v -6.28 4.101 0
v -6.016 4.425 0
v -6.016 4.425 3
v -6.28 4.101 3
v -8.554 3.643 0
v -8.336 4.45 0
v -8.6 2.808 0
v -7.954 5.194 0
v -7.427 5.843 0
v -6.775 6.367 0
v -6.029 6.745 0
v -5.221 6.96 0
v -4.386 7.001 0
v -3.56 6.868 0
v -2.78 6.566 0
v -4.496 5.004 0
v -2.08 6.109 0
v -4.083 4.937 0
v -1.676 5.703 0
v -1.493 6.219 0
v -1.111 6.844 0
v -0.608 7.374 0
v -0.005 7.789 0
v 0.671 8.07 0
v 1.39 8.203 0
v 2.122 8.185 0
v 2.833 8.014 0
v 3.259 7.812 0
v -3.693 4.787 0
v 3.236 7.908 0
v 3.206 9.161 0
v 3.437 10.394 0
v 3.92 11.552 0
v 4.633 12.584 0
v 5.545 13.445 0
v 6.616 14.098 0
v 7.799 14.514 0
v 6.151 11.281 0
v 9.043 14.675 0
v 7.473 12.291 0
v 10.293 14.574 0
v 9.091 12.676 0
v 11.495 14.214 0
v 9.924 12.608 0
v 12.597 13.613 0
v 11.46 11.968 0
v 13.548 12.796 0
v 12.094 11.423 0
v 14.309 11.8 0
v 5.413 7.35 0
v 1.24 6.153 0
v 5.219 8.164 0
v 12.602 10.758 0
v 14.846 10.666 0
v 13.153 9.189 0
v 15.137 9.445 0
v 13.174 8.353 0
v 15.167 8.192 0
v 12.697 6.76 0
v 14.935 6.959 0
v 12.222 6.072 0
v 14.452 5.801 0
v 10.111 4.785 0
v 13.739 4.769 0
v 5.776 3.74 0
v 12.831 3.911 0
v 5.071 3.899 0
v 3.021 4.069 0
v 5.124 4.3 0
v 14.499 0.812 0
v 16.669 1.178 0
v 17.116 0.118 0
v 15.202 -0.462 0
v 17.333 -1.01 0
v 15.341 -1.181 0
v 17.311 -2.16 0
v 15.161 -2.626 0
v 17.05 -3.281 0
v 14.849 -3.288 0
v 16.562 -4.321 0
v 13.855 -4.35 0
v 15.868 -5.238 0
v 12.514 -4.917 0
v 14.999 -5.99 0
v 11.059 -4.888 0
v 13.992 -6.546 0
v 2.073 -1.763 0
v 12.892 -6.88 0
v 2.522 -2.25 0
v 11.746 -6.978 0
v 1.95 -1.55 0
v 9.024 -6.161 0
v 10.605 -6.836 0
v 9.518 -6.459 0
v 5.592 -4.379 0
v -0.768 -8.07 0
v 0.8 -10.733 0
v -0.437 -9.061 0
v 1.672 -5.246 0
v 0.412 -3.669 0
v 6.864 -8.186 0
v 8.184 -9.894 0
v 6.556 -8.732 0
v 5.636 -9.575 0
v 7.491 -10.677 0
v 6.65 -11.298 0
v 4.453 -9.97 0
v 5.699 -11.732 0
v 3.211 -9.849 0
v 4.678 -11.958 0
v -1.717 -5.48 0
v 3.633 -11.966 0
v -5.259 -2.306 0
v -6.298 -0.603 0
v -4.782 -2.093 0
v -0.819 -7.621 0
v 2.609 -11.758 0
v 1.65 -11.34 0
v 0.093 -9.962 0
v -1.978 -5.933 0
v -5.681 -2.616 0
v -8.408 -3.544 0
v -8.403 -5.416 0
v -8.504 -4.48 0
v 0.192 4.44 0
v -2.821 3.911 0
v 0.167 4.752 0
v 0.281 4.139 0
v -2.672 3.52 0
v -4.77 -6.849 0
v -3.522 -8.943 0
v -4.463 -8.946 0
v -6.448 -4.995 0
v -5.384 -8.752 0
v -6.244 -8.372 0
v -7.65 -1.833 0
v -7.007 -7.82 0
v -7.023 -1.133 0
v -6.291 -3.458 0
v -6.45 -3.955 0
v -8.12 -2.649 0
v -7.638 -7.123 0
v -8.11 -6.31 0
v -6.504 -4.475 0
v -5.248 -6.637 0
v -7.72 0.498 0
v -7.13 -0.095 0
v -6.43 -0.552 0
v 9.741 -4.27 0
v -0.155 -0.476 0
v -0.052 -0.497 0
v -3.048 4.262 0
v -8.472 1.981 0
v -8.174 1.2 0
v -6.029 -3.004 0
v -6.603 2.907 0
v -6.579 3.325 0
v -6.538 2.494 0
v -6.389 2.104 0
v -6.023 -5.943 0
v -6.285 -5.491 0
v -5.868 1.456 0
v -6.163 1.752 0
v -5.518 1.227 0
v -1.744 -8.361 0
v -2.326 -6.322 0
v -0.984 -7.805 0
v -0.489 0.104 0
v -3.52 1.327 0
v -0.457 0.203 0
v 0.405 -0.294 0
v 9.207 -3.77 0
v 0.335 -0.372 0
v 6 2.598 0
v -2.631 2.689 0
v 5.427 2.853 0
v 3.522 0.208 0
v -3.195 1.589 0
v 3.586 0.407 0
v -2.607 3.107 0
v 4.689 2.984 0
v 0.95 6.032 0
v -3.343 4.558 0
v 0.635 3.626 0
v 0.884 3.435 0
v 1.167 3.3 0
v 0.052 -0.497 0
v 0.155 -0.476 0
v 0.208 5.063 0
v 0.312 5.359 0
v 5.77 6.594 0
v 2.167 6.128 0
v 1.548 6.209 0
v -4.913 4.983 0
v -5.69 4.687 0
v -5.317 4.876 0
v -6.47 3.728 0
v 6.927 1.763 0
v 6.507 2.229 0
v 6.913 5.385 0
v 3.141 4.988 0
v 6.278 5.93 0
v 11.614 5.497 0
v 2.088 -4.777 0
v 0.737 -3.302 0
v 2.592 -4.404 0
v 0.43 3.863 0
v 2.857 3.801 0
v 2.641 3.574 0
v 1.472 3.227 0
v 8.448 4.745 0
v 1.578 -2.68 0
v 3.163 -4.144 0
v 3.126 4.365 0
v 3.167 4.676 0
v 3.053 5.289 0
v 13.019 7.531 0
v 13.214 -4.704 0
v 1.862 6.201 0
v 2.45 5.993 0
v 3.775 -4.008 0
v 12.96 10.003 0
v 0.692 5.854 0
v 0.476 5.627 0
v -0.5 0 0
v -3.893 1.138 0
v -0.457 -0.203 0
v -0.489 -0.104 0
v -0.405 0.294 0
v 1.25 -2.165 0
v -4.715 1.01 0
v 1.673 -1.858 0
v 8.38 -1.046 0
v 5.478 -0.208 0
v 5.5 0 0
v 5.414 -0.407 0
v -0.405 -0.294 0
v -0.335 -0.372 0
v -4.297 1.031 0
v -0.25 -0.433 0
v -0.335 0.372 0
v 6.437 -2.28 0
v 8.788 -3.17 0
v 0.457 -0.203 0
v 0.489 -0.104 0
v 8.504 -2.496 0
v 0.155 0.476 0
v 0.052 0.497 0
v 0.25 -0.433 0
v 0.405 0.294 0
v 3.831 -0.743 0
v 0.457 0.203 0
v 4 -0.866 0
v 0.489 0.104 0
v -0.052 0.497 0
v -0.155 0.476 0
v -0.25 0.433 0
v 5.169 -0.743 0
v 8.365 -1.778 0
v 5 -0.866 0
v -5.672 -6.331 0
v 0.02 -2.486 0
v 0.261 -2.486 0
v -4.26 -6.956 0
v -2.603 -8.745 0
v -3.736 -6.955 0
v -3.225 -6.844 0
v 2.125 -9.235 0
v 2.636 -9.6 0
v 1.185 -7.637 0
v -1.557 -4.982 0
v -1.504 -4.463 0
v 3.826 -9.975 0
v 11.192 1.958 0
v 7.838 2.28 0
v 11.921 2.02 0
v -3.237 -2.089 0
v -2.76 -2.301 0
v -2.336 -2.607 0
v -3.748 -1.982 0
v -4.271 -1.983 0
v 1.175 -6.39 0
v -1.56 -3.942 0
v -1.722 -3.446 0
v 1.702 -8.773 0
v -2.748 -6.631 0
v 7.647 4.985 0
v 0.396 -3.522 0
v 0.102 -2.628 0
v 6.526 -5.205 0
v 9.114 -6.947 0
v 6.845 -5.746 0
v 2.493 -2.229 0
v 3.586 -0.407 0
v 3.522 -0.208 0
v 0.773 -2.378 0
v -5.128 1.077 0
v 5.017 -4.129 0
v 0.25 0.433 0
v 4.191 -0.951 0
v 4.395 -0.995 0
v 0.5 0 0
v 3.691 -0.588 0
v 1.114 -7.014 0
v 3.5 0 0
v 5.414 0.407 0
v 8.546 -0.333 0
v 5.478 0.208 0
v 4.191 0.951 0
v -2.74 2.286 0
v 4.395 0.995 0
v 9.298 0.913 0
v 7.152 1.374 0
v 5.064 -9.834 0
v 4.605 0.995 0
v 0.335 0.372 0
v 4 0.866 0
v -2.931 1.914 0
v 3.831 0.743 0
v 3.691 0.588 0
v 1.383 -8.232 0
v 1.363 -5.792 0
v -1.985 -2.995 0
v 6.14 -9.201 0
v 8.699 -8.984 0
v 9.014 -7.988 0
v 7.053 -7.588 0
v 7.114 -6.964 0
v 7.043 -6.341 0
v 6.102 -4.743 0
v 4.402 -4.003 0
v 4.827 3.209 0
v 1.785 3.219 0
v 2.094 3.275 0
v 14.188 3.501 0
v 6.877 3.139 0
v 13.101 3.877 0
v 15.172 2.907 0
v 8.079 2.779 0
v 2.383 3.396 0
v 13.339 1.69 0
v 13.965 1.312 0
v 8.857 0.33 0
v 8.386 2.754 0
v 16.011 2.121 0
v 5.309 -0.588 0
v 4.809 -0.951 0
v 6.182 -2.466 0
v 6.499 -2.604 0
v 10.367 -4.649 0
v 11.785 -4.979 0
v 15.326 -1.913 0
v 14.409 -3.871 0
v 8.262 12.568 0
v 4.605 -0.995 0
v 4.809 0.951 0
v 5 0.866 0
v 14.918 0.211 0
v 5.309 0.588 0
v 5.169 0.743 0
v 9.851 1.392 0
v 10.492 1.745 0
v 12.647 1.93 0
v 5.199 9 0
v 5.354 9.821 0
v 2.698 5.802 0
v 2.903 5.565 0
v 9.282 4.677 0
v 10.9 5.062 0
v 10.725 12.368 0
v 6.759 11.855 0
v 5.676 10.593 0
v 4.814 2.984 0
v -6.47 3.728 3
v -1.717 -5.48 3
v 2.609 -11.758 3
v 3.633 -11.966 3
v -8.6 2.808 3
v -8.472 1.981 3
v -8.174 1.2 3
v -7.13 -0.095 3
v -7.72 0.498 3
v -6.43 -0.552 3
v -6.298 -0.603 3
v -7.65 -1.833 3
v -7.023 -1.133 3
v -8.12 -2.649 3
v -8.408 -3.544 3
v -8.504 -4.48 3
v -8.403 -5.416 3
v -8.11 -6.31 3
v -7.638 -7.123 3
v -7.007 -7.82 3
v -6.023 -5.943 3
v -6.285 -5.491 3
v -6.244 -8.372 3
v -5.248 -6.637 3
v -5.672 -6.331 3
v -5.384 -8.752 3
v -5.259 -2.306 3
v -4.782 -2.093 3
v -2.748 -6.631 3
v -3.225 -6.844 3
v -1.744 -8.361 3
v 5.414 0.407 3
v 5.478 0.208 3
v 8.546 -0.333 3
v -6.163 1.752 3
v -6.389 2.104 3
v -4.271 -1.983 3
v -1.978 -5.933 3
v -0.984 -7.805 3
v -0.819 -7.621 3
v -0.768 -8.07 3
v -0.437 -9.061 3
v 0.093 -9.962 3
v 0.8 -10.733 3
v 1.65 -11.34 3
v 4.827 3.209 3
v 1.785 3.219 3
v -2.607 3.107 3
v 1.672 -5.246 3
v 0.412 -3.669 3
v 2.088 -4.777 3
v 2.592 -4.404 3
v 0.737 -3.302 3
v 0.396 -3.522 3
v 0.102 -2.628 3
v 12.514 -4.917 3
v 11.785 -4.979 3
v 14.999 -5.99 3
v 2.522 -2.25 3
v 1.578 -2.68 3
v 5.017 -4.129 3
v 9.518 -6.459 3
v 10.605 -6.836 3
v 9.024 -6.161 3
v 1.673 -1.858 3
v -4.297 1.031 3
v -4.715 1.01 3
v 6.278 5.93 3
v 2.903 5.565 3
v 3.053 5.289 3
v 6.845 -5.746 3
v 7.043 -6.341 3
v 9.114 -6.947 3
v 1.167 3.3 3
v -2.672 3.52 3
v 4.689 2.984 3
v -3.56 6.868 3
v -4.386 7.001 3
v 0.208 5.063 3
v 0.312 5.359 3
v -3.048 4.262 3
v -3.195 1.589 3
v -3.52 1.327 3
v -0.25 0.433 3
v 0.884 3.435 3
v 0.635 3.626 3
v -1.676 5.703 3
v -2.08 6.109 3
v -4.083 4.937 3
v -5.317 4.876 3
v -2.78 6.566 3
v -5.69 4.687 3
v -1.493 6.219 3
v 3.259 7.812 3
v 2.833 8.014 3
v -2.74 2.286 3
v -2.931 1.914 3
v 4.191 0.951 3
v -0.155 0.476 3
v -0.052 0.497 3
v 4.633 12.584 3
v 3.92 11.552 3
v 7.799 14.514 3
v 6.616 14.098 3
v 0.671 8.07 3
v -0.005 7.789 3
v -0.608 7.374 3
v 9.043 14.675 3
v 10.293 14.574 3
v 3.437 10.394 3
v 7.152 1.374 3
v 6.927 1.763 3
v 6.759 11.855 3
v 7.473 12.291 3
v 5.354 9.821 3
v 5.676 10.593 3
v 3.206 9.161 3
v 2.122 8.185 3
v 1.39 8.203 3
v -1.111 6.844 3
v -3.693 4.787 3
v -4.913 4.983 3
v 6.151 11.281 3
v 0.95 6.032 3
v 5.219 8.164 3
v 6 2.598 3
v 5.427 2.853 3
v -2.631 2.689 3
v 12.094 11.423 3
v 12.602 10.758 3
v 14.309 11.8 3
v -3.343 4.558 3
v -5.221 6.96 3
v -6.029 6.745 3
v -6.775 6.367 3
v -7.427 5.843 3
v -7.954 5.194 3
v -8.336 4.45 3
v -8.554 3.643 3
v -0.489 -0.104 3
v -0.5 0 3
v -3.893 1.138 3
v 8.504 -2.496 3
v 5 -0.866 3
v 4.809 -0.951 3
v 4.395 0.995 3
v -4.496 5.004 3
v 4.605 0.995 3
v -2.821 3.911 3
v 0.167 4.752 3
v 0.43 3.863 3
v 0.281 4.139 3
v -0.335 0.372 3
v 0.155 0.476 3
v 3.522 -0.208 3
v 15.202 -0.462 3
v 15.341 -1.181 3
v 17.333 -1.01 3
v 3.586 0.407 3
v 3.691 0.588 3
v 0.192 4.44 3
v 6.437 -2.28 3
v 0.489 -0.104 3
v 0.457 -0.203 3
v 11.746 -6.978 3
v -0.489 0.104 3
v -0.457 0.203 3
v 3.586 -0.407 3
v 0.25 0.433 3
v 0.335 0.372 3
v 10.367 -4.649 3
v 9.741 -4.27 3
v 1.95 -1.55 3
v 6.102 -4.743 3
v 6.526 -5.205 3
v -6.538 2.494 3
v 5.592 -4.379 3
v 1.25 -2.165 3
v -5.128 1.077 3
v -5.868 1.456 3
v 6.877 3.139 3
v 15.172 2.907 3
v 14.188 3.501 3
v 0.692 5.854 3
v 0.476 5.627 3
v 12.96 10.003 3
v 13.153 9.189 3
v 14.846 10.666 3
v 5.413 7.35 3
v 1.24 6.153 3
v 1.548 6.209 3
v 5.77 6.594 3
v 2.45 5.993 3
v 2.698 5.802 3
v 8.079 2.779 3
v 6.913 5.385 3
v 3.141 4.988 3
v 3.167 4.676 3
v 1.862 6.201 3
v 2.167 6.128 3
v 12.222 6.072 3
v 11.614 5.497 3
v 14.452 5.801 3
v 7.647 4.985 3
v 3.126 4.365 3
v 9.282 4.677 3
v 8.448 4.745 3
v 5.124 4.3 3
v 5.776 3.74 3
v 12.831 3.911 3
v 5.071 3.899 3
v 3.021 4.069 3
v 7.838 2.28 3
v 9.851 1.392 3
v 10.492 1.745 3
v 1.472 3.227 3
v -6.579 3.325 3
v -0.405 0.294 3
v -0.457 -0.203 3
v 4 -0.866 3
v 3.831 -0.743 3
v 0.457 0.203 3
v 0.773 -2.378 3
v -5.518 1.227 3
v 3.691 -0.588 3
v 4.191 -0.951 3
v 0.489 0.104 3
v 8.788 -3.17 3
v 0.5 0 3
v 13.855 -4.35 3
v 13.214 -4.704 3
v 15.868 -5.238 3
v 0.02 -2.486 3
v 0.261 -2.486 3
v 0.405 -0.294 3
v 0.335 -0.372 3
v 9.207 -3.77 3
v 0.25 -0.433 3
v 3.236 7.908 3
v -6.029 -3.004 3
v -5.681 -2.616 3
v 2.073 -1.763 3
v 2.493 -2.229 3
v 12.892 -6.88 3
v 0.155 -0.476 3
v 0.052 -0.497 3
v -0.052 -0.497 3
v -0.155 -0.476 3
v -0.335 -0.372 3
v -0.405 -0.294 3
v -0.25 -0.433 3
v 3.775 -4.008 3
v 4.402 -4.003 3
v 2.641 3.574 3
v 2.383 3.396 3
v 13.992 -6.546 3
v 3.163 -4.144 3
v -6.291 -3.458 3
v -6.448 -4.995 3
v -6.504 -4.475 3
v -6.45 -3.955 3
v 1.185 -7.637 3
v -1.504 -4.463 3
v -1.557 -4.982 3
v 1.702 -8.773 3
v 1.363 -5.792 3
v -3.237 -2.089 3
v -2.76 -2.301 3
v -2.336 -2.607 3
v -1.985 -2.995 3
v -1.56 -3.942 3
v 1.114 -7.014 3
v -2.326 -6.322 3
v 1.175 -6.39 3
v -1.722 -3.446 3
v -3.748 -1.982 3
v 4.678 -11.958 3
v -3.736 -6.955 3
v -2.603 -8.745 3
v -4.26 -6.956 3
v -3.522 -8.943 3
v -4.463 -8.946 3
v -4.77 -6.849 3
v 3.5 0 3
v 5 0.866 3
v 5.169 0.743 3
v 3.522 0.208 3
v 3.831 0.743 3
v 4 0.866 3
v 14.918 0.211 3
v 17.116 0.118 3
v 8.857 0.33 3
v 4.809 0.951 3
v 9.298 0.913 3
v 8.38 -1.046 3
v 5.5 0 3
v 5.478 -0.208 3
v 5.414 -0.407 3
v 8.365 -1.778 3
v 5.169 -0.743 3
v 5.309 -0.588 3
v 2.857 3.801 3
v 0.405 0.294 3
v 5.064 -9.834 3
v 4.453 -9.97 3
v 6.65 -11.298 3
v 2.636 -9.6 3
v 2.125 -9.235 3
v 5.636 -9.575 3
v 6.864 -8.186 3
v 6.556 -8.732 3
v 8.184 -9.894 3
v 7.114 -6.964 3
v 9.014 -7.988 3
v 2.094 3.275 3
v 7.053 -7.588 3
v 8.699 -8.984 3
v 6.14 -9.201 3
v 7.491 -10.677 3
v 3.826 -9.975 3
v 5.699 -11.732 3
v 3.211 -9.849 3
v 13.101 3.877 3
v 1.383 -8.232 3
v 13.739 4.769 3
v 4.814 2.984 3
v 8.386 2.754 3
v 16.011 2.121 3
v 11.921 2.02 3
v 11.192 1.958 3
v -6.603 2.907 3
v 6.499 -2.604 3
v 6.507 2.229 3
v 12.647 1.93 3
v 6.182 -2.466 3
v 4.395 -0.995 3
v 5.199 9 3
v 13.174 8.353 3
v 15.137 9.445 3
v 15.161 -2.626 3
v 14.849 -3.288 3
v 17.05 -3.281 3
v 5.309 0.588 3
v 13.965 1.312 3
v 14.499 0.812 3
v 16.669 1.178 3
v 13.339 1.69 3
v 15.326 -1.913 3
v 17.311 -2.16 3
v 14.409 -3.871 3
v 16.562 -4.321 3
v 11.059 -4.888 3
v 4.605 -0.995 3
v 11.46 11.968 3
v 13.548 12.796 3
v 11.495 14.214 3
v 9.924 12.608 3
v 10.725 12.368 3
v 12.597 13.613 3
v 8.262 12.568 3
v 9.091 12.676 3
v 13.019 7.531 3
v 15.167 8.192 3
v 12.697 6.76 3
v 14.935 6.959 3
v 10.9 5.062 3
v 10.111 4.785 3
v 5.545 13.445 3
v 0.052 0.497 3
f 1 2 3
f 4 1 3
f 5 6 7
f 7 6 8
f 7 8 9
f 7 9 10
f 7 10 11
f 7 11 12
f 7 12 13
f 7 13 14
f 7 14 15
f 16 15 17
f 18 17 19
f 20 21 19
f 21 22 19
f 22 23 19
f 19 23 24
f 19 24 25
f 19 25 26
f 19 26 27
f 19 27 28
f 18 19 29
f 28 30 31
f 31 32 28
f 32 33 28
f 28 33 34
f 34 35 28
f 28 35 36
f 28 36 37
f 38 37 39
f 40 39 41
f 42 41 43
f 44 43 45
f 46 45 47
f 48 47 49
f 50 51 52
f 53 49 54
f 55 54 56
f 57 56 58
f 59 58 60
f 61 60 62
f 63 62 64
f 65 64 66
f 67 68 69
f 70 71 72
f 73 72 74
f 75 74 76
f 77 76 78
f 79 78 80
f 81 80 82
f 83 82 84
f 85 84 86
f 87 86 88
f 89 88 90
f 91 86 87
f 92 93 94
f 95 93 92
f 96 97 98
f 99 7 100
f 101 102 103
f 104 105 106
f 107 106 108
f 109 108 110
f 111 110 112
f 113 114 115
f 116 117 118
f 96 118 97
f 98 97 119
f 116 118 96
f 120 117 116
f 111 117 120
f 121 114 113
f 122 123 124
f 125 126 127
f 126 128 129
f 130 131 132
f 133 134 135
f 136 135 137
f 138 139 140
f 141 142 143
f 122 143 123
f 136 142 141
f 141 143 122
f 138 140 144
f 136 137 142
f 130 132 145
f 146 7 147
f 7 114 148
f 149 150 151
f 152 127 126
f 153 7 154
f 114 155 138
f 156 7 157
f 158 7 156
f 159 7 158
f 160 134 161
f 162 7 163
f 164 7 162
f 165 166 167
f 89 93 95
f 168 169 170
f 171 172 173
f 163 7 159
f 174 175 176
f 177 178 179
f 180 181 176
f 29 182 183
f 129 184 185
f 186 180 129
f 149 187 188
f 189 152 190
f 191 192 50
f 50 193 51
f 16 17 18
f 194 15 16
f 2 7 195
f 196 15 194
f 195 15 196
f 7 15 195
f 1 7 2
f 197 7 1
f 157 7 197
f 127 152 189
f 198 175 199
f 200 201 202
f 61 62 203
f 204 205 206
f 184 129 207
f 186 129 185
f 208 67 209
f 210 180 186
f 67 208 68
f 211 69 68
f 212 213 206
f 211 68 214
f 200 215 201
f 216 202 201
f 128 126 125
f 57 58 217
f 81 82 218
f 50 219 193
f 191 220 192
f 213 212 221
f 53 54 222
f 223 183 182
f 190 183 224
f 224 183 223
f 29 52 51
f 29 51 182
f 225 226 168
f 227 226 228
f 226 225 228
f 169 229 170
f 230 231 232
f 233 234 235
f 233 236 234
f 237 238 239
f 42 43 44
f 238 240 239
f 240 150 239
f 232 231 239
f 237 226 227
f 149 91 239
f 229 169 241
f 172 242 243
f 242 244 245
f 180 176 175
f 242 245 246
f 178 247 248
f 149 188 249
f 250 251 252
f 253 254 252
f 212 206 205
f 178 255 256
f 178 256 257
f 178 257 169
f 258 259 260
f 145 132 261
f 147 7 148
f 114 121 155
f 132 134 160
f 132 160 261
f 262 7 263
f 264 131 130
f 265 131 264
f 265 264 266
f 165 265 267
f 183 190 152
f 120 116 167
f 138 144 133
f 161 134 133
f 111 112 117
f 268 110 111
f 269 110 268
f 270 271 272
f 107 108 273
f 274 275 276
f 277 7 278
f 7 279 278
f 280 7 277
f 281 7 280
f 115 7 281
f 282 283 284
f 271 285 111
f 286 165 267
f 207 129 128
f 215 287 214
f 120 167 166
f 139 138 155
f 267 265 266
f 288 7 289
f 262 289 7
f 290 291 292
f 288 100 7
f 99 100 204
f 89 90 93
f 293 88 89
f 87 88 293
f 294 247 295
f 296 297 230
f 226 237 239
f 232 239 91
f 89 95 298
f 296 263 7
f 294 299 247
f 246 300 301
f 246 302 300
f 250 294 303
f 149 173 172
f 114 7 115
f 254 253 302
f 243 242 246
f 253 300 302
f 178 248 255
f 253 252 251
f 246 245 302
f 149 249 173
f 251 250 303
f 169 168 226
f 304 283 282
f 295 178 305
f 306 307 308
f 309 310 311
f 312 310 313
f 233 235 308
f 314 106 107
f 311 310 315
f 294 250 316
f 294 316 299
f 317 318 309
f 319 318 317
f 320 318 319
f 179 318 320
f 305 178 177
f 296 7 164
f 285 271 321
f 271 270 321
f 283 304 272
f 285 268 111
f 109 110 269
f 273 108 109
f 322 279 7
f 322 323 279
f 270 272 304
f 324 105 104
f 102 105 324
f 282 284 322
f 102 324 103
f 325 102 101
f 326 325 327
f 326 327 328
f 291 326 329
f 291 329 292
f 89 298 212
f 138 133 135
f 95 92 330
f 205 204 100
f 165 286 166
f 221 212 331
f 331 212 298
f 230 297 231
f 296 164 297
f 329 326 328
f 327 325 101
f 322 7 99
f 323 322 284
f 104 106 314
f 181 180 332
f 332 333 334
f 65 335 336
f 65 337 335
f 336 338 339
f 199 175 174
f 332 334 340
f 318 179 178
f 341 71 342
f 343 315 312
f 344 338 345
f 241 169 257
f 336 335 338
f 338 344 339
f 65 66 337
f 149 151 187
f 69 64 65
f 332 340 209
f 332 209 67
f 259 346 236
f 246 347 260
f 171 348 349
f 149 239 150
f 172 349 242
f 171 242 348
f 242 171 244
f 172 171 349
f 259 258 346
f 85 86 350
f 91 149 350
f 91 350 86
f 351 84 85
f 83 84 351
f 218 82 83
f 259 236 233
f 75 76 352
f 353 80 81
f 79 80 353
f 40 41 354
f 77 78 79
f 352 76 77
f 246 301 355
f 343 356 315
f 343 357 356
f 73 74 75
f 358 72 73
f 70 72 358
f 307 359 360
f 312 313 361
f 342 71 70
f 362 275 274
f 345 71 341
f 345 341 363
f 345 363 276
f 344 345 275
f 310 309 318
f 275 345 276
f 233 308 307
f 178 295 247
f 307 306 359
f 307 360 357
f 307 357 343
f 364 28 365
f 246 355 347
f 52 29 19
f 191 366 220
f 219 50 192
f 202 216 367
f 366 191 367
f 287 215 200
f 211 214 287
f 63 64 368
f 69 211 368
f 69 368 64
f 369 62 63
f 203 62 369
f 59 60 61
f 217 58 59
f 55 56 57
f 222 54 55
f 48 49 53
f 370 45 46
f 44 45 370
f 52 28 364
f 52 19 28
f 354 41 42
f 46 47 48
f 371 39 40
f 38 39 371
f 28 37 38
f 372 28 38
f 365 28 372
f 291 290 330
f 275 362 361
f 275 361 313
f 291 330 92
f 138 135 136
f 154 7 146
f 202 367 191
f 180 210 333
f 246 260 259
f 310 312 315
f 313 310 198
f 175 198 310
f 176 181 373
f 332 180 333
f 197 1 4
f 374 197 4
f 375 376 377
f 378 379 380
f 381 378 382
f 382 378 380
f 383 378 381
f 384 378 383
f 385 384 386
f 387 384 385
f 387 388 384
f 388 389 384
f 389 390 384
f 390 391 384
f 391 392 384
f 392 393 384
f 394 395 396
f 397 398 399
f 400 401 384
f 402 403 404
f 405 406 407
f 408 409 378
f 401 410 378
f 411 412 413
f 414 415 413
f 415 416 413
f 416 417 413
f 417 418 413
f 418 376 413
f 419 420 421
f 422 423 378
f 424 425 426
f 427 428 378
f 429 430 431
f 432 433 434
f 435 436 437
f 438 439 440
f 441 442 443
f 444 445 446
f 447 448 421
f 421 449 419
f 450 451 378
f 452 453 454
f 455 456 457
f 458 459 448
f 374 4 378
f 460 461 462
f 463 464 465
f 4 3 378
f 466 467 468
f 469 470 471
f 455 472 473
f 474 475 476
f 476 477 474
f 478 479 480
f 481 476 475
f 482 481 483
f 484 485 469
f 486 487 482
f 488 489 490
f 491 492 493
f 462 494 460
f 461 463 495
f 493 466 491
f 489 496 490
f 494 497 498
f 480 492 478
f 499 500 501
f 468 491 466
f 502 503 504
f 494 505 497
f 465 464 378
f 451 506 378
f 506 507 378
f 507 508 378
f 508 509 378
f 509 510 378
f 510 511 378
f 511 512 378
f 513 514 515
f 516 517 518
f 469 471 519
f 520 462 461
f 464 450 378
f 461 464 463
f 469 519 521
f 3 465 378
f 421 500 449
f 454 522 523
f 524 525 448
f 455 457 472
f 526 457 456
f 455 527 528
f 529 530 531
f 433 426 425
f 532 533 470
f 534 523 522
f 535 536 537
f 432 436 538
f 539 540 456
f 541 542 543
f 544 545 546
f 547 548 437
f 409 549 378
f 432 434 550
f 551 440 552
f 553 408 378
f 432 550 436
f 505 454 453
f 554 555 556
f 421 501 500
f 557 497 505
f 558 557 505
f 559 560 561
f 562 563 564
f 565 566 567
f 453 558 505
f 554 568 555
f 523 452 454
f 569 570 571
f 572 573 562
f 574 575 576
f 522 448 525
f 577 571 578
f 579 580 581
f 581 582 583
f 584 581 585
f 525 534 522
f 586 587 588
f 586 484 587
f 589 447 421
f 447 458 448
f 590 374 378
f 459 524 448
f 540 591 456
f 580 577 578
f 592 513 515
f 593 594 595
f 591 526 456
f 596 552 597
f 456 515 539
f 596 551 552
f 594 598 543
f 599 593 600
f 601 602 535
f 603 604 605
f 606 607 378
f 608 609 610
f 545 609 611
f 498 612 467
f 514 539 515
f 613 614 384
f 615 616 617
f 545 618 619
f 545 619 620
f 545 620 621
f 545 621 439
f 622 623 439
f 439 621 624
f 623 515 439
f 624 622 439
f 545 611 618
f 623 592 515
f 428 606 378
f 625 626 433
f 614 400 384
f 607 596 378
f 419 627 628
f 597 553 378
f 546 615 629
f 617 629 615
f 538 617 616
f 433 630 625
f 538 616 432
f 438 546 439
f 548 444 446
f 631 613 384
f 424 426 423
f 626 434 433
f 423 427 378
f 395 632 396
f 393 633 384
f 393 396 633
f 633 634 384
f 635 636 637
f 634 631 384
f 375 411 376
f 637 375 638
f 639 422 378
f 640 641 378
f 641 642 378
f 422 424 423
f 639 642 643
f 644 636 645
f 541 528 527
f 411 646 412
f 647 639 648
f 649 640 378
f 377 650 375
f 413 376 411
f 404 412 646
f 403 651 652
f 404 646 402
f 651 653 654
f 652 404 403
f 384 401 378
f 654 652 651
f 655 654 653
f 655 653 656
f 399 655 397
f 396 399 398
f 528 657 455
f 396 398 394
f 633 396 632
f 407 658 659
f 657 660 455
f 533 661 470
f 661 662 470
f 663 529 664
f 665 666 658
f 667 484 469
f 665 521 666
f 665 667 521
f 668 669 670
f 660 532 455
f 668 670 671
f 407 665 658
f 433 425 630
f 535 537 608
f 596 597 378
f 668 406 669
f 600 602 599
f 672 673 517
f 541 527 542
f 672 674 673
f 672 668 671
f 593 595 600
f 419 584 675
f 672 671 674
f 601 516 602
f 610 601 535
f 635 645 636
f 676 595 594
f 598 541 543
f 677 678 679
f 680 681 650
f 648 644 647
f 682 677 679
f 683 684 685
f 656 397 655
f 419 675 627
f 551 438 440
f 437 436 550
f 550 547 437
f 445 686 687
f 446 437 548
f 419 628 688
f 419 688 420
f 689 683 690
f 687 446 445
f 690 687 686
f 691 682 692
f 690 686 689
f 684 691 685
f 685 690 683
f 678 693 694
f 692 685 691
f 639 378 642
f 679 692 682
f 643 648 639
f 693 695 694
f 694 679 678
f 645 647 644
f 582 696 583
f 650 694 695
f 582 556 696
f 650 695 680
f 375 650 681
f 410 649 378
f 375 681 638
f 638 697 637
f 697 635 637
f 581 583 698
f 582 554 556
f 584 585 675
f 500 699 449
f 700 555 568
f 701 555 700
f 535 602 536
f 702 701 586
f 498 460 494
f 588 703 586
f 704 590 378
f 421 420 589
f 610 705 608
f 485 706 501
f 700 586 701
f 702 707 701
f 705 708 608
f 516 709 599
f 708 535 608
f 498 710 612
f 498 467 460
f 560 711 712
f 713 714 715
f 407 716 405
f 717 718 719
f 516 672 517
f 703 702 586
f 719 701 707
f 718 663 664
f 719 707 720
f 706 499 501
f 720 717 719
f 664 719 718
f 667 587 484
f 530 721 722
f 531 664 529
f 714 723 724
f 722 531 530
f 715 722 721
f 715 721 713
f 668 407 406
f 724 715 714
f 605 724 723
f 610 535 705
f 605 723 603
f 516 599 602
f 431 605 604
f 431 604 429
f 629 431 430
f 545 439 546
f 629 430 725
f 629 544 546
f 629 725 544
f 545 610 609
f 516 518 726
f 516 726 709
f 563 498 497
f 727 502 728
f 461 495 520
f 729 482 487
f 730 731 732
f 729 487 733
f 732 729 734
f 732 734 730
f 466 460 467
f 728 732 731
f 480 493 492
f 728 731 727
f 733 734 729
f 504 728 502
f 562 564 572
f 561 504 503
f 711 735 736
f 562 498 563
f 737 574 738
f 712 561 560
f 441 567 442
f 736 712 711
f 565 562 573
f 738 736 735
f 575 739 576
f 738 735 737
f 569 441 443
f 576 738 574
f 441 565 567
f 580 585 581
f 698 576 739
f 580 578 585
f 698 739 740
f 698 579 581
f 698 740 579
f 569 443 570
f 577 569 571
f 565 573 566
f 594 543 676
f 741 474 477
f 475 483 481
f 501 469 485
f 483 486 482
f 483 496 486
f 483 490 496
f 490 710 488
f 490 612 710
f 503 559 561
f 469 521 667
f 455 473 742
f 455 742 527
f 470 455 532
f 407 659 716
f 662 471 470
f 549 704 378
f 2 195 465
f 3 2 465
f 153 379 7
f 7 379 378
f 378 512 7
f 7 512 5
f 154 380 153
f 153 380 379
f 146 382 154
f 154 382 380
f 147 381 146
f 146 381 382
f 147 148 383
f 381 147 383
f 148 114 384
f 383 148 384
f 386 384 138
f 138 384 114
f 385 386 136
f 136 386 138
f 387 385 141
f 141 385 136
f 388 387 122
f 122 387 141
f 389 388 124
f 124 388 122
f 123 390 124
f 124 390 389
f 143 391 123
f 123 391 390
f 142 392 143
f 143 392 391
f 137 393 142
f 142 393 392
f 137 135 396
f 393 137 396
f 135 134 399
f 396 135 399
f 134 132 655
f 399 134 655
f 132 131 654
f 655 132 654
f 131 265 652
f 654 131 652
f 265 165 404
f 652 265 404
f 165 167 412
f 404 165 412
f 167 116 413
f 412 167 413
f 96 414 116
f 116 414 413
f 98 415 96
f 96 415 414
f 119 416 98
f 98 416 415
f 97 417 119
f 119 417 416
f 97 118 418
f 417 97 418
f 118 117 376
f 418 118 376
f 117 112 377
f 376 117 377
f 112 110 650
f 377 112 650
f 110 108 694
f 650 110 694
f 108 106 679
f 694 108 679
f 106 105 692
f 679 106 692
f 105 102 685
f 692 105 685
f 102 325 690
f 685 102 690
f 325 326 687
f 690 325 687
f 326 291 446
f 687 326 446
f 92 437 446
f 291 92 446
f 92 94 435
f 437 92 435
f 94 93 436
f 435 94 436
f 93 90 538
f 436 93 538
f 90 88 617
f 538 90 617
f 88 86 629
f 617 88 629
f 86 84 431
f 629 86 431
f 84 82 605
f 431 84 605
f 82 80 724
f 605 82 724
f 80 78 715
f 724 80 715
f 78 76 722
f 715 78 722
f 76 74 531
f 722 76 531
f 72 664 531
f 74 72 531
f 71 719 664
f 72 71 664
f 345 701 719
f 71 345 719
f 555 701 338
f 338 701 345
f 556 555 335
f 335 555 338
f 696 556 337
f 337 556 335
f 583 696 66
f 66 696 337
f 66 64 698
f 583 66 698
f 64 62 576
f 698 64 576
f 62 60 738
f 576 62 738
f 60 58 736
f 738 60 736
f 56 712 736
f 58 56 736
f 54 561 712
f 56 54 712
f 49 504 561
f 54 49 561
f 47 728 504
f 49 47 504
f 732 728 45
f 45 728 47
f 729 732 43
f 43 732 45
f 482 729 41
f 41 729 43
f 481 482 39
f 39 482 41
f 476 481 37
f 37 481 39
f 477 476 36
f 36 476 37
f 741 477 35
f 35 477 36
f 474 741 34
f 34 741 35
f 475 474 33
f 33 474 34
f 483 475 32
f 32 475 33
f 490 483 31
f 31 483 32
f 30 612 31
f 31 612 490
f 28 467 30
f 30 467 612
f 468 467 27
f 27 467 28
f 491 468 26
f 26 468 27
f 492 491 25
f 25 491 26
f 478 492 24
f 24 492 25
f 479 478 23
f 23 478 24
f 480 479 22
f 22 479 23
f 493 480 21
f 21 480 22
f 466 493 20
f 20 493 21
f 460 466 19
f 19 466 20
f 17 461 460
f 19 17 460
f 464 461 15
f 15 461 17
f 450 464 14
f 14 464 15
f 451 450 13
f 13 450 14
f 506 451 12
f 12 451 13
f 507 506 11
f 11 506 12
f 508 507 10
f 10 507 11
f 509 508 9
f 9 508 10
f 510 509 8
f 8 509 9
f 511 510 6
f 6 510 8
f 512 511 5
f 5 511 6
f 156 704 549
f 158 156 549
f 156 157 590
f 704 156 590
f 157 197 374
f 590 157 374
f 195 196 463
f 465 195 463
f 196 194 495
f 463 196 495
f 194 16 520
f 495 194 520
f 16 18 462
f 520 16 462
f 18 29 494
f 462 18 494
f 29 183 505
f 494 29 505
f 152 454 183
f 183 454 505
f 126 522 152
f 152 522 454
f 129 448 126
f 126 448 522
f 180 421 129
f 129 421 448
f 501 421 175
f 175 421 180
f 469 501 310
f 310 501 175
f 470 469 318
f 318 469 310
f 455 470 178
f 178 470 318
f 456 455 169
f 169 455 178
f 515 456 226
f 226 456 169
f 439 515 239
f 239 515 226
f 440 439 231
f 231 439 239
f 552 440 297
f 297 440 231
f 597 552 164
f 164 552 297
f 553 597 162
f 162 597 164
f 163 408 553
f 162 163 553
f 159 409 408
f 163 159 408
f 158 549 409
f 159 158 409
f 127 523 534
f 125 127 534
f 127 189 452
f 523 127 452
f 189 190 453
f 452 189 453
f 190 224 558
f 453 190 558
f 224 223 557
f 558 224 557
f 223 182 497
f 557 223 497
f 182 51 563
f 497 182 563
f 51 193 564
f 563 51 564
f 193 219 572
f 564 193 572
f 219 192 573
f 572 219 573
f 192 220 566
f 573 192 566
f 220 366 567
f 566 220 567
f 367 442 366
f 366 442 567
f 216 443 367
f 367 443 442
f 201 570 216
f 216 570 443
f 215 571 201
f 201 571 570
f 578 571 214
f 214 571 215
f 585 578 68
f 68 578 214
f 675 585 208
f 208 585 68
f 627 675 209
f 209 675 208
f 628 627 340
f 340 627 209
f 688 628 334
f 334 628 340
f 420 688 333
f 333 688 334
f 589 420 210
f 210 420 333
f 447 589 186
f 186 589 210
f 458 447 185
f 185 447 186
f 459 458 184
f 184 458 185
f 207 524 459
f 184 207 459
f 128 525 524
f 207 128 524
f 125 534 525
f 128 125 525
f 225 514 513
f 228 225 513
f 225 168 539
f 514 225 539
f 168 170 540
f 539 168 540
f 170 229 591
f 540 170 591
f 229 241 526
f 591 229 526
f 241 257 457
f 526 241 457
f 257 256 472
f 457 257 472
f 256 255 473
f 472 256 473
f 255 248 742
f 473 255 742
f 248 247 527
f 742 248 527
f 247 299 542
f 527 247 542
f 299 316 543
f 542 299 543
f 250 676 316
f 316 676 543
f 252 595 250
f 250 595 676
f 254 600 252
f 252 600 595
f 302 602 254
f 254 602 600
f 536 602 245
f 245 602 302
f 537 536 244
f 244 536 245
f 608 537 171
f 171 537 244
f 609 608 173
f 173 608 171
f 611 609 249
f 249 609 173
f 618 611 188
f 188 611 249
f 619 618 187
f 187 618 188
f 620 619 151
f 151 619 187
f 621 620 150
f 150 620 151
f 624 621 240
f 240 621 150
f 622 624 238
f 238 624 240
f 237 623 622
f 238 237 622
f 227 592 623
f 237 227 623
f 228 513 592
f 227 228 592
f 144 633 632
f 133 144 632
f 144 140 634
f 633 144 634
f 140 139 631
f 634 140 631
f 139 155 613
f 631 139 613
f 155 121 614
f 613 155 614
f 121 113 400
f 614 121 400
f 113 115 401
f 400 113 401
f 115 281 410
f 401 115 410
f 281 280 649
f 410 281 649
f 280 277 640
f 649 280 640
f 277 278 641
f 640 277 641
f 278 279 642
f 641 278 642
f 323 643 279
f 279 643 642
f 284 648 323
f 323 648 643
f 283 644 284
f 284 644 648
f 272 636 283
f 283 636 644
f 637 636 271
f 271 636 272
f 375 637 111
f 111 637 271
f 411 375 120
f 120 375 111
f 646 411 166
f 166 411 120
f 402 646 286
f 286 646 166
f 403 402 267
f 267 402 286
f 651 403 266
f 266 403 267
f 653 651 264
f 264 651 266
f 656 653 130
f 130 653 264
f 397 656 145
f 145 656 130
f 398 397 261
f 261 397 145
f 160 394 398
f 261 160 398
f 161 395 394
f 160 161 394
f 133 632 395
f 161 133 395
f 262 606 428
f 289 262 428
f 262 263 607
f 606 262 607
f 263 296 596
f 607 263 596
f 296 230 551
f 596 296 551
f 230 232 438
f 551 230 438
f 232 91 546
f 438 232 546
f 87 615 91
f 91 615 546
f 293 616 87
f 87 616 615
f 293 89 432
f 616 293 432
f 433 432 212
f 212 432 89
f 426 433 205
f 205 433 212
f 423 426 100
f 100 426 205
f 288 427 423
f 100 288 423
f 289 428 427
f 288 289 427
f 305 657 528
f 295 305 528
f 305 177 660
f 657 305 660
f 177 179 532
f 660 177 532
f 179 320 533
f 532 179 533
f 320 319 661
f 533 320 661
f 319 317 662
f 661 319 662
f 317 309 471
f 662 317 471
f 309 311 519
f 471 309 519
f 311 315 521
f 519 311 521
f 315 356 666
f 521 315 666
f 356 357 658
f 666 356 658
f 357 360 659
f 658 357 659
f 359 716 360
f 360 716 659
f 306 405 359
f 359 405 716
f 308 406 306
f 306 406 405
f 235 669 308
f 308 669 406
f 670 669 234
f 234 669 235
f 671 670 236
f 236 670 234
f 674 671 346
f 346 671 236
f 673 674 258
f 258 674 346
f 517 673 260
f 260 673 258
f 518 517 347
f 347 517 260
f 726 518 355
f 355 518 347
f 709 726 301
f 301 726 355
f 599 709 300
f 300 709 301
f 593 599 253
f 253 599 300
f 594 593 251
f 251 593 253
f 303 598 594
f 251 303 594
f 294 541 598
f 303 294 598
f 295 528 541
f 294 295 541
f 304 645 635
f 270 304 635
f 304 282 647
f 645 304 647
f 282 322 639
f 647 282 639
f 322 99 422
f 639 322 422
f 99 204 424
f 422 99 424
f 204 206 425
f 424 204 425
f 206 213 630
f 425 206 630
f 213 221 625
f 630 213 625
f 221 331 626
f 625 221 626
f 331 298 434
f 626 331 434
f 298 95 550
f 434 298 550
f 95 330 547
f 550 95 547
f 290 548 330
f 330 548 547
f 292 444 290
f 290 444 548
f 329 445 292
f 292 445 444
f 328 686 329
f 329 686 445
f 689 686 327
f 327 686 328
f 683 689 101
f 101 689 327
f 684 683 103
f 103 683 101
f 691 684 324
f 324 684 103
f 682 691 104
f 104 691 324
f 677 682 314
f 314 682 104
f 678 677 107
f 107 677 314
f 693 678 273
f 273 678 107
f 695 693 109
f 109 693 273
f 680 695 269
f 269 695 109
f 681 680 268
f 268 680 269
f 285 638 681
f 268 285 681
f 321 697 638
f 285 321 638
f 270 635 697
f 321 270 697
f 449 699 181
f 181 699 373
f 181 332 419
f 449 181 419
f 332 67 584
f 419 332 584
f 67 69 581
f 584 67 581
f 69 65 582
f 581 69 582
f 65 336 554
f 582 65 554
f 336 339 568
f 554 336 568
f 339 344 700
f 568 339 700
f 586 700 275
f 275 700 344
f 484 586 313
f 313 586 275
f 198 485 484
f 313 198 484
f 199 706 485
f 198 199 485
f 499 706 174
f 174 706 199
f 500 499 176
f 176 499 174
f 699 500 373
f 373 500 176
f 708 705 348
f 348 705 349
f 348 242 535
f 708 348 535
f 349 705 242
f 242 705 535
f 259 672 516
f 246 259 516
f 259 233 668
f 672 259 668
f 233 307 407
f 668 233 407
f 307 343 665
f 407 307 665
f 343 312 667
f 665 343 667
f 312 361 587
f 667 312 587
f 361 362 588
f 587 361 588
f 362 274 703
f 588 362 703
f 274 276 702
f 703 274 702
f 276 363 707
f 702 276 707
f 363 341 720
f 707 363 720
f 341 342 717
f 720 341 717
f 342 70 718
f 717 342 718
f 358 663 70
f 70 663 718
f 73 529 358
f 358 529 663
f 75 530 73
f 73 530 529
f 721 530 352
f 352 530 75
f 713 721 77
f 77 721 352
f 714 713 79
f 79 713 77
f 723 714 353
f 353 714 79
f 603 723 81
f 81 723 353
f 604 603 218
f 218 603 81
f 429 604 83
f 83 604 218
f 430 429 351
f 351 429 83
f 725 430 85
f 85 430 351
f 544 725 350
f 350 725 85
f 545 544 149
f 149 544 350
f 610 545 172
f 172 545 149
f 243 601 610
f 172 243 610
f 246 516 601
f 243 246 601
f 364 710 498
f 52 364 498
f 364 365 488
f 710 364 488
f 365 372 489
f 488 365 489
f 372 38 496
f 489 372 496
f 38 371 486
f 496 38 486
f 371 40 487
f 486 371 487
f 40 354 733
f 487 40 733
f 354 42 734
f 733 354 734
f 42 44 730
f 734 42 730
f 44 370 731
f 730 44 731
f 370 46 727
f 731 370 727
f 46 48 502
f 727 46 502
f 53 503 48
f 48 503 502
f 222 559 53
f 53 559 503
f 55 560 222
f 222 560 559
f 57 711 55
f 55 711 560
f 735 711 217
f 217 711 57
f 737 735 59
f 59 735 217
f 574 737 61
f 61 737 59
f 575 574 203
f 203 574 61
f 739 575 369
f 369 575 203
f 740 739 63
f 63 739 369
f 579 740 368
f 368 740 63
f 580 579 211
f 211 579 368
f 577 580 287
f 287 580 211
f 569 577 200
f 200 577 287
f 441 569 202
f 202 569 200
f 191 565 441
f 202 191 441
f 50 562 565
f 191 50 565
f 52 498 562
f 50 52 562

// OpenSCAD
linear_extrude(height=3)
{
	translate([0,0])
		difference()
		{
			circle(r=2.5,$fn=30);
			circle(r=0.5,$fn=30);
		};
	translate([4.5,0])
		difference()
		{
			circle(r=3,$fn=30);
			circle(r=1,$fn=30);
		};
	rotate(70.528779)
		translate([5,0])
			difference()
			{
				circle(r=3.5,$fn=30);
				circle(r=1.5,$fn=30);
			};
	rotate(146.856761)
		translate([5.5,0])
			difference()
			{
				circle(r=4,$fn=30);
				circle(r=2,$fn=30);
			};
	rotate(228.142019)
		translate([6,0])
			difference()
			{
				circle(r=4.5,$fn=30);
				circle(r=2.5,$fn=30);
			};
	rotate(300.481309)
		translate([8.110224,0])
			difference()
			{
				circle(r=5,$fn=30);
				circle(r=3,$fn=30);
			};
	rotate(352.886535)
		translate([11.944632,0])
			difference()
			{
				circle(r=5.5,$fn=30);
				circle(r=3.5,$fn=30);
			};
	rotate(43.365327)
		translate([12.636304,0])
			difference()
			{
				circle(r=6,$fn=30);
				circle(r=4,$fn=30);
			};
};

/*
linear_extrude(height=3) difference()
{
translate([4,2]) circle(r=16,$fn=30);
translate([0,0]) circle(r=0.5,$fn=30);
translate([4.5,0]) circle(r=1,$fn=30);
rotate(70.528779) translate([5,0]) circle(r=1.5,$fn=30);
rotate(146.856761) translate([5.5,0]) circle(r=2,$fn=30);
rotate(228.142019) translate([6,0]) circle(r=2.5,$fn=30);
rotate(300.481309) translate([8.110224,0]) circle(r=3,$fn=30);
rotate(352.886535) translate([11.944632,0]) circle(r=3.5,$fn=30);
rotate(43.365327) translate([12.636304,0]) circle(r=4,$fn=30);
}
*/
